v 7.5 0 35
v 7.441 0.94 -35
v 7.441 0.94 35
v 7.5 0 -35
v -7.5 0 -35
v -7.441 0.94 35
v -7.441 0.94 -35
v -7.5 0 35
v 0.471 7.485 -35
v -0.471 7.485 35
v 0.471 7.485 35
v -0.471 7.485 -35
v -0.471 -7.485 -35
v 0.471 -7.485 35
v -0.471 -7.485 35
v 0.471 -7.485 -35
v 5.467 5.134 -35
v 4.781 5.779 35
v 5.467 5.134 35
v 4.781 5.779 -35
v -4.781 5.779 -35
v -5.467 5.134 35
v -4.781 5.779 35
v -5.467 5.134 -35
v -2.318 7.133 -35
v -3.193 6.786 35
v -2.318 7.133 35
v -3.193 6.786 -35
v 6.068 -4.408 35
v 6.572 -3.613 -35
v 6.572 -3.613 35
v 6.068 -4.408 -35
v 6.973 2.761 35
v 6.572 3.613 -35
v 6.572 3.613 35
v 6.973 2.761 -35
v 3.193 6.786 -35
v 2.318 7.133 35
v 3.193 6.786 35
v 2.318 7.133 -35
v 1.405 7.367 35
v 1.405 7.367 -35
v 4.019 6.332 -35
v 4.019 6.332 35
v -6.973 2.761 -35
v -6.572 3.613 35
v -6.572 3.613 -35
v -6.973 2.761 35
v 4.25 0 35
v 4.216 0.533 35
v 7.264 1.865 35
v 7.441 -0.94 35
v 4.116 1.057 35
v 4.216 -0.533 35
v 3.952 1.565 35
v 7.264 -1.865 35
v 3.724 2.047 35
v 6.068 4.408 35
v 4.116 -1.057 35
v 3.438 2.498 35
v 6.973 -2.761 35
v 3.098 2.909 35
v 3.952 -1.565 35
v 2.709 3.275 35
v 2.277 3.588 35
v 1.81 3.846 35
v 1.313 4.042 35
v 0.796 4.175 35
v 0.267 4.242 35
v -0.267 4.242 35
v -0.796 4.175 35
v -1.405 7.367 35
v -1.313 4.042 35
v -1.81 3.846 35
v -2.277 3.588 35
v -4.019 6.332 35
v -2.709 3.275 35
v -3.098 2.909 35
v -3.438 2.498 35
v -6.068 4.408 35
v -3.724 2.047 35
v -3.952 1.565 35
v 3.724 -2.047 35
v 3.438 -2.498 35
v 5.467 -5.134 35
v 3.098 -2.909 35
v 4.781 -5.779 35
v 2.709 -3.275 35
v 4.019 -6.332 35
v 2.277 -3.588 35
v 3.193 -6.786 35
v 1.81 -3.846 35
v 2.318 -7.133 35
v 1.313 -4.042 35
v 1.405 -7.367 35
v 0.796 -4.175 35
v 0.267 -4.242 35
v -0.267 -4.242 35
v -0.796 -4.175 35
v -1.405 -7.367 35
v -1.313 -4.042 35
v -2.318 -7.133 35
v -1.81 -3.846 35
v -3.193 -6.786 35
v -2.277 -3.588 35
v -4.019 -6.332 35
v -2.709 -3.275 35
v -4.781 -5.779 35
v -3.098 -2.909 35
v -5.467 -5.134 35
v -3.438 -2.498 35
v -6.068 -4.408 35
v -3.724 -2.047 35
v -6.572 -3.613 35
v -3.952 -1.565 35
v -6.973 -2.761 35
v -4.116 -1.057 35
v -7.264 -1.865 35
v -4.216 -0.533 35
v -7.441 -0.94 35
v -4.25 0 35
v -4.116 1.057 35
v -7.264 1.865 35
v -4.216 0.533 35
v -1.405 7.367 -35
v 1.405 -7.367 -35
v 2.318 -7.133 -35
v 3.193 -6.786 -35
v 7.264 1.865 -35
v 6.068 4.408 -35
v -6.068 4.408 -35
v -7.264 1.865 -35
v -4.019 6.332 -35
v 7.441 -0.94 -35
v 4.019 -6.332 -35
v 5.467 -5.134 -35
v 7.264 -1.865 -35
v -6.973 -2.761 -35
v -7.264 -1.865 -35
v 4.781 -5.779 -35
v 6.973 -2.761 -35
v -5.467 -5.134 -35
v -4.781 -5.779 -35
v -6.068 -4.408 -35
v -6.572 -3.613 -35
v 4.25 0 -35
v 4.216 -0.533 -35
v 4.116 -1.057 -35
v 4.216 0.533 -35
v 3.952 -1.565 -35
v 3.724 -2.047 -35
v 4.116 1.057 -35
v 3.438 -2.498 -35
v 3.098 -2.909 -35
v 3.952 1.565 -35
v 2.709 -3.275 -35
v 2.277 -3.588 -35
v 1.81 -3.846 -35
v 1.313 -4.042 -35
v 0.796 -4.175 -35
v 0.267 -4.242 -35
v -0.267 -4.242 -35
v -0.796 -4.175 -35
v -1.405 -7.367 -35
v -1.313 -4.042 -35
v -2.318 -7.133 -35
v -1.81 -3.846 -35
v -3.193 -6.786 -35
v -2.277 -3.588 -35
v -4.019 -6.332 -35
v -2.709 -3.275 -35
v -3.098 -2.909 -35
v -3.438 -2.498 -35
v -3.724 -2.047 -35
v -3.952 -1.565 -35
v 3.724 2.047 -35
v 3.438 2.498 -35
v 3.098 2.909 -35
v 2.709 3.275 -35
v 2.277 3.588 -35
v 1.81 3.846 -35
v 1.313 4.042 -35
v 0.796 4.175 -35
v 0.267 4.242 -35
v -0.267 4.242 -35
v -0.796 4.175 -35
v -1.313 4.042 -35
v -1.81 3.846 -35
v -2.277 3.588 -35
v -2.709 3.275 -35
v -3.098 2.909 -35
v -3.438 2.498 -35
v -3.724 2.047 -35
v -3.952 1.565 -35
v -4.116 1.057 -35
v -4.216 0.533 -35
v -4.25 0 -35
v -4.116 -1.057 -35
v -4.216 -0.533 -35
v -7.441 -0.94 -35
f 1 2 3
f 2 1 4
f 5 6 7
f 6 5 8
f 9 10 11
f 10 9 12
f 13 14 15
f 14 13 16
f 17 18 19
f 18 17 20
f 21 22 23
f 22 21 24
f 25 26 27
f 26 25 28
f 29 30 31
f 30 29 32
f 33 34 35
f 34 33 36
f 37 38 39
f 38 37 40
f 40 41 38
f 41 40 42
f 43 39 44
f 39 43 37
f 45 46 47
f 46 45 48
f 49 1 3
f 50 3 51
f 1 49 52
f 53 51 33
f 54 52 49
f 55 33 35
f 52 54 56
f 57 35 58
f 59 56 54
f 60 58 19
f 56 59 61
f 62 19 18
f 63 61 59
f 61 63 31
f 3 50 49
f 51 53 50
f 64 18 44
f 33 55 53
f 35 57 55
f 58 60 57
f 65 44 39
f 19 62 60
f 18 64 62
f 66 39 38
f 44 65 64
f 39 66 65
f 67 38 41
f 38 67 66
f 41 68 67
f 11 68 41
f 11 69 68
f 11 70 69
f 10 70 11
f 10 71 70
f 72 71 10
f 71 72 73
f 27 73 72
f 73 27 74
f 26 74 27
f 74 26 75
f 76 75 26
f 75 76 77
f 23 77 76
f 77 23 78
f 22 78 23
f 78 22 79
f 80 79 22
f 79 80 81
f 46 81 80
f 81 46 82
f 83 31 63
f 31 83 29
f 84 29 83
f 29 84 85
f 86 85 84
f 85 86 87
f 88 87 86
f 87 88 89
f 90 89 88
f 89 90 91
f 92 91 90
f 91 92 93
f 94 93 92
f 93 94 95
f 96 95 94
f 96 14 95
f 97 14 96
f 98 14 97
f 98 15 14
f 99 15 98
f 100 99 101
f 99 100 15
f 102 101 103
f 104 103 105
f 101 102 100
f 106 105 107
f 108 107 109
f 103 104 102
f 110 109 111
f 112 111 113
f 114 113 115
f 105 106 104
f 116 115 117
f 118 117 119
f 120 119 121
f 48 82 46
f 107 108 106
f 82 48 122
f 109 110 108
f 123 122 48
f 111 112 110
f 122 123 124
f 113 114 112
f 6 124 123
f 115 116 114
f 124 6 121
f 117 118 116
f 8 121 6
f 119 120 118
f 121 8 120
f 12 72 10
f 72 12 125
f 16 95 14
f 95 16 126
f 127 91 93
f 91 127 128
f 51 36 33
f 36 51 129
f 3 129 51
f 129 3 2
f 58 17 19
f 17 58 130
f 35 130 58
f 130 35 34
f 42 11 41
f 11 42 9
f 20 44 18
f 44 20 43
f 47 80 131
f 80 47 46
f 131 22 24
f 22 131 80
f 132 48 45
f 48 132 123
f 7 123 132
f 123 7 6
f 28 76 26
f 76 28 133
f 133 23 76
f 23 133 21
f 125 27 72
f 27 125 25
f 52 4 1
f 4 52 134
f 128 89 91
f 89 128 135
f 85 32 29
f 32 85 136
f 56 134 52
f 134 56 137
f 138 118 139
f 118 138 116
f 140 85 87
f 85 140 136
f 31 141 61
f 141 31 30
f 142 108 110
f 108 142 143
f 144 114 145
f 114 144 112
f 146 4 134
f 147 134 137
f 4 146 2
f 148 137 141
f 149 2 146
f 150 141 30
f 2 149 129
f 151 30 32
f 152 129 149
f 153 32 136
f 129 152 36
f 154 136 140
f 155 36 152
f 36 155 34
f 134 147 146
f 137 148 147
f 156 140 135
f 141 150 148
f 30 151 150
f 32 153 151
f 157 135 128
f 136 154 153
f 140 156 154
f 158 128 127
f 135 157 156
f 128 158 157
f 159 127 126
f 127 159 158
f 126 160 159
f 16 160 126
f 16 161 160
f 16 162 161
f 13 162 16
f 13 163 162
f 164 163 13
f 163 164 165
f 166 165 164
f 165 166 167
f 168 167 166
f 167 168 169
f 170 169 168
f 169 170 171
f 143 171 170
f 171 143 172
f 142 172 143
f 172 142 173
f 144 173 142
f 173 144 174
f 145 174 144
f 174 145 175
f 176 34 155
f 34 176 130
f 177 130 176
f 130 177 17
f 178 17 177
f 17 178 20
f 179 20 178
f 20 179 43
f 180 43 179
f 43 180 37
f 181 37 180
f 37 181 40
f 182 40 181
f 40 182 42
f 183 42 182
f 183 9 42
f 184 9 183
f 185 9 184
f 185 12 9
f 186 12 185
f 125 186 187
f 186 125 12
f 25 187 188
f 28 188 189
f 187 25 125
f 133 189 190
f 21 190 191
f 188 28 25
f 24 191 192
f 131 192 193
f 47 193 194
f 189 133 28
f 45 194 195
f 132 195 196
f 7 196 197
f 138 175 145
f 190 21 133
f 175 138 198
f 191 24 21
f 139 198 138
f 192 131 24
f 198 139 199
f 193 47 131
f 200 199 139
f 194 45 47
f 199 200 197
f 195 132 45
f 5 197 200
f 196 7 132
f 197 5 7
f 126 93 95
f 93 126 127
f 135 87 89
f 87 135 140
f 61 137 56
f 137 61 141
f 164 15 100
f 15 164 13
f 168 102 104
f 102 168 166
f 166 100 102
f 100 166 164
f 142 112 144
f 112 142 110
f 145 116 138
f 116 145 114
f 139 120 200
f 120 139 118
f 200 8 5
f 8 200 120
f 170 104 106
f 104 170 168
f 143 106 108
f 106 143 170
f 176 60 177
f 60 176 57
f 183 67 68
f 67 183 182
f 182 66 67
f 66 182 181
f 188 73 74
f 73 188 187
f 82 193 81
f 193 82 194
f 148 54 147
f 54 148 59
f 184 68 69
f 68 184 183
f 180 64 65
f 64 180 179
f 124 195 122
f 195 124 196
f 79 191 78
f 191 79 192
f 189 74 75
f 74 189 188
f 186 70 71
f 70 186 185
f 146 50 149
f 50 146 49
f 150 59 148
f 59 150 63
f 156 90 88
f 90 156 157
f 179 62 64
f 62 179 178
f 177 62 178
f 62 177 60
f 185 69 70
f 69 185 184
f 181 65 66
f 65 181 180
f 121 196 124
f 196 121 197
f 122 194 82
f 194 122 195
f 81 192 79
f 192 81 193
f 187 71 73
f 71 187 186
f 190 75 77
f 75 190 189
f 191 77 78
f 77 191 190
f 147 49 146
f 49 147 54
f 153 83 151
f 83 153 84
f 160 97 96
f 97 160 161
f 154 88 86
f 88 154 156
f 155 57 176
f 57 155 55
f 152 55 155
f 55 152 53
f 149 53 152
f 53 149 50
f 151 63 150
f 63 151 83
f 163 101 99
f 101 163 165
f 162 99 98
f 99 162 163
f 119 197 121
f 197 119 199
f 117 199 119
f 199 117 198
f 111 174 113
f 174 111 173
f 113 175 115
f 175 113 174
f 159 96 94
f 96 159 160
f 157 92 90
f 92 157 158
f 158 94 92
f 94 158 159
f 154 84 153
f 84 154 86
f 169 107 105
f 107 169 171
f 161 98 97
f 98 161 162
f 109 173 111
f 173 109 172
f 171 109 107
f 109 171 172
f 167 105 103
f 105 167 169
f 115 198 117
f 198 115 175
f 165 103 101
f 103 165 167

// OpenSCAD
$fn = 50;


difference() {
	union() {
		translate(v = [0, 0, -35.0000000000]) {
			cylinder(h = 70, r = 7.5000000000);
		}
	}
	union() {
		translate(v = [0, 0, -100.0000000000]) {
			cylinder(h = 200, r = 4.2500000000);
		}
	}
}
